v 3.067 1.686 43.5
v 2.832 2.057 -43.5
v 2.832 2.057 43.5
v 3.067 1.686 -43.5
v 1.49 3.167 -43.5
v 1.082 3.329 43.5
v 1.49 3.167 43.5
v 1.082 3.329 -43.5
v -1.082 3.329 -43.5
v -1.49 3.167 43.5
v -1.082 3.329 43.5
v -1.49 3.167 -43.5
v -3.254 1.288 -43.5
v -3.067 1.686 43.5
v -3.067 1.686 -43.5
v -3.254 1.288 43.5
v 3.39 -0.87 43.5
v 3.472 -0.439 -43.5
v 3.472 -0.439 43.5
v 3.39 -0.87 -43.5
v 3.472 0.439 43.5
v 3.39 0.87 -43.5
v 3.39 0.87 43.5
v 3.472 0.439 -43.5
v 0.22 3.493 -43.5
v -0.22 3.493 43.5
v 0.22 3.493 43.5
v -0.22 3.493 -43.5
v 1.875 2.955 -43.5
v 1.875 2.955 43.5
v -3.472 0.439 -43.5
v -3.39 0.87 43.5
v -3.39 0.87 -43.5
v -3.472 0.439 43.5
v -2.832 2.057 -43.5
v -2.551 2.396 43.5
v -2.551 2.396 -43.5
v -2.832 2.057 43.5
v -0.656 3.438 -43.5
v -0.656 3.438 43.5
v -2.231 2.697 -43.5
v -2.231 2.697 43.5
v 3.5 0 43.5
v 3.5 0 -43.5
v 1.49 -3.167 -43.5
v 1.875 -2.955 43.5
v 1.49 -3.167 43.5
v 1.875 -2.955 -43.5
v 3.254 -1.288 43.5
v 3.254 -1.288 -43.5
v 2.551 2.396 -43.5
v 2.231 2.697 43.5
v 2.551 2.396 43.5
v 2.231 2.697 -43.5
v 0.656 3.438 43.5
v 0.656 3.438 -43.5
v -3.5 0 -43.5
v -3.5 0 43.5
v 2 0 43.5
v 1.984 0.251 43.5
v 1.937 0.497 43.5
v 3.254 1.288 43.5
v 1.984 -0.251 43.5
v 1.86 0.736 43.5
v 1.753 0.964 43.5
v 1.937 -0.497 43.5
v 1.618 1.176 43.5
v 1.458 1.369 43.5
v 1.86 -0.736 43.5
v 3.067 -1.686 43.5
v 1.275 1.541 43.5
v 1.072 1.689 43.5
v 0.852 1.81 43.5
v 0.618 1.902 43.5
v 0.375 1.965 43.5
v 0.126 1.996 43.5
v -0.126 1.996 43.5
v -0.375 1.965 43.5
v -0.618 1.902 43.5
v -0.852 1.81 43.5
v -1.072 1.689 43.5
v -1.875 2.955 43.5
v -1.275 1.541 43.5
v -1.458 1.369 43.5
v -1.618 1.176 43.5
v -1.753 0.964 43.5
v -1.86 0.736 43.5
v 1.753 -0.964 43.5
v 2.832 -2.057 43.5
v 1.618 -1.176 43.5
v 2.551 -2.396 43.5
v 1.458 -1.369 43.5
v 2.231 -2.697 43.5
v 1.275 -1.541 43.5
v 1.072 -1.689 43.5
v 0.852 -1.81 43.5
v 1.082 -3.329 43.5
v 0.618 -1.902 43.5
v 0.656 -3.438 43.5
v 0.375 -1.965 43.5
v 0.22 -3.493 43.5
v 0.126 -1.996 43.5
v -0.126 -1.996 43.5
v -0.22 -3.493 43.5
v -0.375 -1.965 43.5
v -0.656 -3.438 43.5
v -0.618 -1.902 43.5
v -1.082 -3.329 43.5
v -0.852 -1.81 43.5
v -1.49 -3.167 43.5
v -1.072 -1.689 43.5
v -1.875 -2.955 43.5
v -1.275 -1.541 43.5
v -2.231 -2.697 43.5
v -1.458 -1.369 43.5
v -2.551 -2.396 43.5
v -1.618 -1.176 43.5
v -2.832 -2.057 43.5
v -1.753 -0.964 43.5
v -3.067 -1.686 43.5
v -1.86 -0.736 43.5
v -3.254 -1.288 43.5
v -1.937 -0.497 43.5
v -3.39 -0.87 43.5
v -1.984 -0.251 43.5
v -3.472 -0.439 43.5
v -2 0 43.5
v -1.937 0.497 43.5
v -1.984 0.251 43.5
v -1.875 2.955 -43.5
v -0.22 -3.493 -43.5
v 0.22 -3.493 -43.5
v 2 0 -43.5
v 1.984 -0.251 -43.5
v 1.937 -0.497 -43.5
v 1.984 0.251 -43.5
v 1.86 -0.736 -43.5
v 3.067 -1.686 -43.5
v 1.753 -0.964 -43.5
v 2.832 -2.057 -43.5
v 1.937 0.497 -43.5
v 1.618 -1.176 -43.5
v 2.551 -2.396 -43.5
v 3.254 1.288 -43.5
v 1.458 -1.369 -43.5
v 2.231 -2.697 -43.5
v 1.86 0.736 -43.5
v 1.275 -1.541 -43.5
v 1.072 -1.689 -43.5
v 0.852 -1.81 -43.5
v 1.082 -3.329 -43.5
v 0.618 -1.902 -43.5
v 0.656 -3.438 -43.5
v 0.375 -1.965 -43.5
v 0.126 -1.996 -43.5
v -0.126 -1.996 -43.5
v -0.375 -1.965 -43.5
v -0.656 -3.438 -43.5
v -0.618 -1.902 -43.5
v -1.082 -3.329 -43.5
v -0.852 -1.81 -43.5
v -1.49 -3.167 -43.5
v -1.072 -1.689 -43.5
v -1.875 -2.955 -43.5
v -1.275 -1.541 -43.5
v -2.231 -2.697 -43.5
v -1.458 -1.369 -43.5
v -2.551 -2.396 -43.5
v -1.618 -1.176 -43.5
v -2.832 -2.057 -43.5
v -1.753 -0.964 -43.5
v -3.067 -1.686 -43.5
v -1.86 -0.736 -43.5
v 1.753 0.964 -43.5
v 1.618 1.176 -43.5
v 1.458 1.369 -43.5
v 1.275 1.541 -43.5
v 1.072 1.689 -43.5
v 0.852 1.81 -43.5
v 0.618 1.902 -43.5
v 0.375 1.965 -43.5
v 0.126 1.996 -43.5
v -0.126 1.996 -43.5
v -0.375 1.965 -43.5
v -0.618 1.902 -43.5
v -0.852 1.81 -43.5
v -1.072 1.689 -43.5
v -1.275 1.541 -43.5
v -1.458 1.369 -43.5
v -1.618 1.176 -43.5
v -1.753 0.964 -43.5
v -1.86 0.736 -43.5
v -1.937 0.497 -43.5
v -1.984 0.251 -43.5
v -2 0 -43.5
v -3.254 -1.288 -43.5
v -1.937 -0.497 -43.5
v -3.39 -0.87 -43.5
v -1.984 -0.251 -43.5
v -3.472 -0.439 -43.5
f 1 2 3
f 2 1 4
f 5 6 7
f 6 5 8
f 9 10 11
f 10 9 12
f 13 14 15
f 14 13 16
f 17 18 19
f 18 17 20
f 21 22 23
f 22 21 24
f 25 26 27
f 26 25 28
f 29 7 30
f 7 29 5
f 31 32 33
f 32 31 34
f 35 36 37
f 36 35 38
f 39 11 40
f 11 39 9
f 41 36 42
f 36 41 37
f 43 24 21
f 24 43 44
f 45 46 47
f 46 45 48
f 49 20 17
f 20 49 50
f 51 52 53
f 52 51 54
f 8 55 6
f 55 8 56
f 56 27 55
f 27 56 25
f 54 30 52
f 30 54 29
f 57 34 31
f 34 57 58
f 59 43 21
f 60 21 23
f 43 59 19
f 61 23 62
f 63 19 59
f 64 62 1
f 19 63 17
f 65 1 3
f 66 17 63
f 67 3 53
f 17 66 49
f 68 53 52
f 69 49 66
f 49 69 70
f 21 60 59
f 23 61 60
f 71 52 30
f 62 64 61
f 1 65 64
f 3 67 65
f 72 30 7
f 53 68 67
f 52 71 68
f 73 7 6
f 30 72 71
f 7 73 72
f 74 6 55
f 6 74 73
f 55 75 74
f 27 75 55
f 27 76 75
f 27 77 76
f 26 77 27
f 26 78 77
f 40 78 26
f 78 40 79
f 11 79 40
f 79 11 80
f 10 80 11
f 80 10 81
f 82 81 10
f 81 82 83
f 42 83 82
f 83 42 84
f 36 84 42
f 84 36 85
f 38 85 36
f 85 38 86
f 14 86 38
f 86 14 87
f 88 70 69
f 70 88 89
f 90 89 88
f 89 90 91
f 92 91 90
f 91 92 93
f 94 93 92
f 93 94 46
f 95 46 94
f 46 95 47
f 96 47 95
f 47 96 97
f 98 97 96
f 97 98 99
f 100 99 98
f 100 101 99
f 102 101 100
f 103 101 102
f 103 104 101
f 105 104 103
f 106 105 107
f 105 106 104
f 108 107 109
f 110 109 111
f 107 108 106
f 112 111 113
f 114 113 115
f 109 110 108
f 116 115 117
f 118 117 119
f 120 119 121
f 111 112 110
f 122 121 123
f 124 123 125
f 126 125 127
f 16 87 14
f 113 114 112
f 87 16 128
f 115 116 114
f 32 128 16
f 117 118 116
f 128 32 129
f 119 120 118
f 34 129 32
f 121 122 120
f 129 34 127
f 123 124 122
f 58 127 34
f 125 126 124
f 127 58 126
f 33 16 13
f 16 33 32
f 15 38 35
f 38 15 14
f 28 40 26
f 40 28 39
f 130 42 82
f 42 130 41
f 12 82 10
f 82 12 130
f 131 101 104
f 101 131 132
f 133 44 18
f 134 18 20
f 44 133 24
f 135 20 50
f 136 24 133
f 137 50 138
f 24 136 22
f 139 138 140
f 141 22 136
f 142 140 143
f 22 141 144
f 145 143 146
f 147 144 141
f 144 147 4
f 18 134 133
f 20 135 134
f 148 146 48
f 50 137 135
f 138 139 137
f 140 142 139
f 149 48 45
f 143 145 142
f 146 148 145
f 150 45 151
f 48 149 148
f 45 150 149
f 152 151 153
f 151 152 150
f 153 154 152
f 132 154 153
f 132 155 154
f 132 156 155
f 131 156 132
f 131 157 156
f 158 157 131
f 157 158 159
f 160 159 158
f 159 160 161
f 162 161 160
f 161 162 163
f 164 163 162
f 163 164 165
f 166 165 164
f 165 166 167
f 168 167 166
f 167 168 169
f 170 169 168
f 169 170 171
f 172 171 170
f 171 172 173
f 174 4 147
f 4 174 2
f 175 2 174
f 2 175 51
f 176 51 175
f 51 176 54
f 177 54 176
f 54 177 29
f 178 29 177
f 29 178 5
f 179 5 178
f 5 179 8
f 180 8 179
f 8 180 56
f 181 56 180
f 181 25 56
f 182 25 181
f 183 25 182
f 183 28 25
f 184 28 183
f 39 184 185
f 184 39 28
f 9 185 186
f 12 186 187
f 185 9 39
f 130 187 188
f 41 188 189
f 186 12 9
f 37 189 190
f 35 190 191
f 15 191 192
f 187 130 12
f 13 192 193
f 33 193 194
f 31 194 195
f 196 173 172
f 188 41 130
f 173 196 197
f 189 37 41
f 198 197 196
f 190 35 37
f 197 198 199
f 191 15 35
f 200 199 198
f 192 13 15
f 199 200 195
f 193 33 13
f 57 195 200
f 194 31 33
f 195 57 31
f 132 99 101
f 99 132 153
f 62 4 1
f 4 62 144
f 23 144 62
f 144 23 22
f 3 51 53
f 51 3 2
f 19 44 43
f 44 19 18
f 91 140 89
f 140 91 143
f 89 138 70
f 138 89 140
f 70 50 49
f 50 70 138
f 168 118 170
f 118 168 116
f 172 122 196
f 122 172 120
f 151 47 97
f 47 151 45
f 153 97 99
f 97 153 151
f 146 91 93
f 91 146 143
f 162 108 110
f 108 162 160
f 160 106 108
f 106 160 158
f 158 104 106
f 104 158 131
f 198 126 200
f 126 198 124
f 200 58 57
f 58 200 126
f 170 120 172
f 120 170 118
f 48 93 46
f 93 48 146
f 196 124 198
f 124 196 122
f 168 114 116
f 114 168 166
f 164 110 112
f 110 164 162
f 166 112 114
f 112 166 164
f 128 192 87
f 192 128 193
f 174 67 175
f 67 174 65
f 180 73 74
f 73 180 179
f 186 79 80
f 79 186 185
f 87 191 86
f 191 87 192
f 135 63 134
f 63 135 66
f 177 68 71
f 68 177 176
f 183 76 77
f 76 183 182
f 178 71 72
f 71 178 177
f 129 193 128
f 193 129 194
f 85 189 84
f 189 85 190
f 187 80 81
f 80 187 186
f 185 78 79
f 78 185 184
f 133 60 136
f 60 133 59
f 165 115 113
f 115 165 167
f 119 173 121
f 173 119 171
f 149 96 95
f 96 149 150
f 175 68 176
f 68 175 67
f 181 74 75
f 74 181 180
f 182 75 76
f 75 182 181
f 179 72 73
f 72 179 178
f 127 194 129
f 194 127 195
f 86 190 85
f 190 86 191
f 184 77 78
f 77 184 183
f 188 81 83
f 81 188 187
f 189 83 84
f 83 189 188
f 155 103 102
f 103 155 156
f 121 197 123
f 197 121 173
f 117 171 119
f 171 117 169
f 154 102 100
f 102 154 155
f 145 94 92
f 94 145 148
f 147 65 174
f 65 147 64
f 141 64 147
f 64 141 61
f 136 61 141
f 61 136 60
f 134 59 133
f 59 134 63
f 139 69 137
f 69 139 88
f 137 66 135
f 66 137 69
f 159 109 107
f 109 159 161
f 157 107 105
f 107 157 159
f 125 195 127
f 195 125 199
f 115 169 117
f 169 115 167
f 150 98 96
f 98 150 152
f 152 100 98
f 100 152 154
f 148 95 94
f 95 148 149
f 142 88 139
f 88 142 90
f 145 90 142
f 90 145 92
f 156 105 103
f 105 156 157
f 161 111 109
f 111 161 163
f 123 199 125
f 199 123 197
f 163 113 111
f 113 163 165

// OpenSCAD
$fn = 50;


difference() {
	union() {
		translate(v = [0, 0, -43.5000000000]) {
			cylinder(h = 87, r = 3.5000000000);
		}
	}
	union() {
		translate(v = [0, 0, -100.0000000000]) {
			cylinder(h = 200, r = 2);
		}
	}
}
